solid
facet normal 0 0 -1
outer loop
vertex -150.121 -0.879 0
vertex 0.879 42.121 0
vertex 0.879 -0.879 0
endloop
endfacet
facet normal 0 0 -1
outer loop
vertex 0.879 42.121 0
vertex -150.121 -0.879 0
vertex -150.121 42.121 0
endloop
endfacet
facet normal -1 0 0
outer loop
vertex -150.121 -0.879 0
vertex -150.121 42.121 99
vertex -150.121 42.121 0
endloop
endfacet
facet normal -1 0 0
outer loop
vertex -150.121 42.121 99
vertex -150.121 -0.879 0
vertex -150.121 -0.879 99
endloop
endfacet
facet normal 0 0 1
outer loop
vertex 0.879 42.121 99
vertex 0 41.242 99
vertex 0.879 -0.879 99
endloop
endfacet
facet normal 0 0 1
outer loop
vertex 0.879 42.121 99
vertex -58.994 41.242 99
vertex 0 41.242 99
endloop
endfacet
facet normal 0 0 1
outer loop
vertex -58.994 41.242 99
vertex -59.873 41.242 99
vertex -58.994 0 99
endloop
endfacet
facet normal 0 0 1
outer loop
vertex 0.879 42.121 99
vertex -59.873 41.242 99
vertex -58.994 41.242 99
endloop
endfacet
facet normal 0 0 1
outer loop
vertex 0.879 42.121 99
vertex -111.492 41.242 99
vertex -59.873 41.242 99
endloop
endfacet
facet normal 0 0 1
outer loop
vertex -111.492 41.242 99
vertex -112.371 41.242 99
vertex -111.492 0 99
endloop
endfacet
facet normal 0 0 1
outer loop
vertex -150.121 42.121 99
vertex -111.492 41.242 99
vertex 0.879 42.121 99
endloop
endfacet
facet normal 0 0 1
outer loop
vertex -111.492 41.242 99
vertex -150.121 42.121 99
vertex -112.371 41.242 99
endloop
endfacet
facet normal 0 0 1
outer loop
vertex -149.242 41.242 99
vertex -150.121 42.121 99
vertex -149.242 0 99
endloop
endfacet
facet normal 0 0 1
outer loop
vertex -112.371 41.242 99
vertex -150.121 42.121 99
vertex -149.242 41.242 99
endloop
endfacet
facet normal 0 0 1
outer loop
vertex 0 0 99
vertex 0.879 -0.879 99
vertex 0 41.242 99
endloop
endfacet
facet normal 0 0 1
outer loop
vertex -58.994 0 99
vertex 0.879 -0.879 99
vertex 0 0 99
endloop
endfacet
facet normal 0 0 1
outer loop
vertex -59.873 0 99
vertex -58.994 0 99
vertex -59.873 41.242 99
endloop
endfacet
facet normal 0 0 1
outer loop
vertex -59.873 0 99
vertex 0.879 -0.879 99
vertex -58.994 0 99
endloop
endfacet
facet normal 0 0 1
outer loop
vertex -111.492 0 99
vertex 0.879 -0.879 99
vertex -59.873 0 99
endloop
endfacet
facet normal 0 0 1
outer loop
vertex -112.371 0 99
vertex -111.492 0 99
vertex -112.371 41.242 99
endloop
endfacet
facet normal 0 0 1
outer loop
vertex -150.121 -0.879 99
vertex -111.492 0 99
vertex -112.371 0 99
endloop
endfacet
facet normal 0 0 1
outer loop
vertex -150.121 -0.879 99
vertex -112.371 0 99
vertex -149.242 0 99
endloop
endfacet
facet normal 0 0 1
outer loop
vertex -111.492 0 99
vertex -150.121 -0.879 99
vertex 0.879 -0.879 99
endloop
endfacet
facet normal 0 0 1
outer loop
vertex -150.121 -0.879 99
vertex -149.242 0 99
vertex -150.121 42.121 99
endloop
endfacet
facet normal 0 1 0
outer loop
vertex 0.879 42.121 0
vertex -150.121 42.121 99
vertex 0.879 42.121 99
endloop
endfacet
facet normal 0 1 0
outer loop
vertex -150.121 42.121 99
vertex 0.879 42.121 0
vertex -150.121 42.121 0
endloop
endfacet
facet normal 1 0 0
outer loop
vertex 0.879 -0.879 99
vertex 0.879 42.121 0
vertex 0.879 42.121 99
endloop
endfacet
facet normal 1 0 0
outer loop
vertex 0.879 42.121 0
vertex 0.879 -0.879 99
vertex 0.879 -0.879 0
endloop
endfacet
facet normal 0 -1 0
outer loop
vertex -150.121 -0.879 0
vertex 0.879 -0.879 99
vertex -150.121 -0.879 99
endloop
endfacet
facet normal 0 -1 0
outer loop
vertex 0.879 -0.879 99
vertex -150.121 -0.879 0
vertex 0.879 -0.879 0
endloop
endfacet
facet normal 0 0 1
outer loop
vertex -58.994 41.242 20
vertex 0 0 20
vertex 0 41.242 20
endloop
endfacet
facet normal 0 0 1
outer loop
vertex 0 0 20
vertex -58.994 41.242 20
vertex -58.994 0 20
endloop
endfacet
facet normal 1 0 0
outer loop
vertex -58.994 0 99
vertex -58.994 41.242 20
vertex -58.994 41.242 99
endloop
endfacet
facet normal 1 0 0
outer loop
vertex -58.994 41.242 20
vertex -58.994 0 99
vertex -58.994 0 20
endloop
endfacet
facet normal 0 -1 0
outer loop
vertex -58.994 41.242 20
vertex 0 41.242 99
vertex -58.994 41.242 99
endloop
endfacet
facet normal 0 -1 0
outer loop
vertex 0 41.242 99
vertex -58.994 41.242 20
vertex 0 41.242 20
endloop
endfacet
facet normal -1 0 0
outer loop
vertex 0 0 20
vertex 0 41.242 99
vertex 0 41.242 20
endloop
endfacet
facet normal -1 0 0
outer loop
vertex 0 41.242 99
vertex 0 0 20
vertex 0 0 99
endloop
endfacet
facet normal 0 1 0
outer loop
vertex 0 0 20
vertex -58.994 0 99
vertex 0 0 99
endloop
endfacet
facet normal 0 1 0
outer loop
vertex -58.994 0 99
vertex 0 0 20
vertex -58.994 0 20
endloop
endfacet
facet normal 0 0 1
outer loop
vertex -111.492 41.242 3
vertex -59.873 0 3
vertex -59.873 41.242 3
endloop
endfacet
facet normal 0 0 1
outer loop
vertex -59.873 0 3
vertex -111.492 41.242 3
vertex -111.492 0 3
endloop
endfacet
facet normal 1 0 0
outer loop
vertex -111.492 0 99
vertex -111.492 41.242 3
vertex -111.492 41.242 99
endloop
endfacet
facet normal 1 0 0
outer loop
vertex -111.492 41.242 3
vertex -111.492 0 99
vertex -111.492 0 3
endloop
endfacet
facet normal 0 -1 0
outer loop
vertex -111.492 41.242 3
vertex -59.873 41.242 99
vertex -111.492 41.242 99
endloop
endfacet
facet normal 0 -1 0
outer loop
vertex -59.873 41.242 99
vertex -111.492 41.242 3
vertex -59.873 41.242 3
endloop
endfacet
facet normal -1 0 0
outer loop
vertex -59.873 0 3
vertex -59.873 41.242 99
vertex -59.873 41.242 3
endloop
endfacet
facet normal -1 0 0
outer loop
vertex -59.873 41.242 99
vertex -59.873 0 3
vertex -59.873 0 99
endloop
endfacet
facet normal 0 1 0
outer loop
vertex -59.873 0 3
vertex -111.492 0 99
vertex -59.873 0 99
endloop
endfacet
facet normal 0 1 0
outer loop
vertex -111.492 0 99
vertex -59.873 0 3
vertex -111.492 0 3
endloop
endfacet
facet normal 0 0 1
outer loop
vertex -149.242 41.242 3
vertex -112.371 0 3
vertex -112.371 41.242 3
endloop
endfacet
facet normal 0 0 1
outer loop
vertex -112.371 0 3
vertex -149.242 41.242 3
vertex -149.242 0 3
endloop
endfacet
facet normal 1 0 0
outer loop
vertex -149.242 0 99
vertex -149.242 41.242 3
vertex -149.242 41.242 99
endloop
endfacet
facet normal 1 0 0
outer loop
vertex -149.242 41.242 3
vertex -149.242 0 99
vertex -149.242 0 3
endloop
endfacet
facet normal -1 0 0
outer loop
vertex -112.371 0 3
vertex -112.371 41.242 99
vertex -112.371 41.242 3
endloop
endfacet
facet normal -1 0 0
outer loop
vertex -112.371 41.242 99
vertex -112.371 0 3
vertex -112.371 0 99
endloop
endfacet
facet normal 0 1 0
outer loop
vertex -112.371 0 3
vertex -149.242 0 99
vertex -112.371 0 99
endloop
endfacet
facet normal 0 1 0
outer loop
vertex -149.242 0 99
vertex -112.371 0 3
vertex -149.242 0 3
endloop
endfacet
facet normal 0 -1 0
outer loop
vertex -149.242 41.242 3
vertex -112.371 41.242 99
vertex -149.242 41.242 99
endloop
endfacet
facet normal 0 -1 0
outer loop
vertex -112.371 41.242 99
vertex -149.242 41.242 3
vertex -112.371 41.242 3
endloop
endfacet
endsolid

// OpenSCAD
//thin wall thickness
twt = .879;
//bandaid thickness
bt = .8;

lwh1 = [79,33,1.4*40];
lwh2 = [96,36,1.4*35];
lwh3 = [96,43,1.4*25];

//bounding box
bbox = [100-1,44-1,152-1];

h3 = bbox[2]-twt*4;
rotate([0,-90,0]) difference(){
    translate([0,-twt,-twt]) cube(bbox);
    translate([bbox[0]-lwh1[0],0,0])
        cube([lwh1[0],bbox[1]+-2*twt,h3*.40]);
    
    translate([bbox[0]-lwh2[0],0,h3*.40+twt])
        cube([lwh2[0],bbox[1]+-2*twt,h3*.35]);
    
    
    translate([bbox[0]-lwh3[0],0,h3*.75+2*twt])
        cube([lwh3[0],bbox[1]+-2*twt,h3*.25]);
}
